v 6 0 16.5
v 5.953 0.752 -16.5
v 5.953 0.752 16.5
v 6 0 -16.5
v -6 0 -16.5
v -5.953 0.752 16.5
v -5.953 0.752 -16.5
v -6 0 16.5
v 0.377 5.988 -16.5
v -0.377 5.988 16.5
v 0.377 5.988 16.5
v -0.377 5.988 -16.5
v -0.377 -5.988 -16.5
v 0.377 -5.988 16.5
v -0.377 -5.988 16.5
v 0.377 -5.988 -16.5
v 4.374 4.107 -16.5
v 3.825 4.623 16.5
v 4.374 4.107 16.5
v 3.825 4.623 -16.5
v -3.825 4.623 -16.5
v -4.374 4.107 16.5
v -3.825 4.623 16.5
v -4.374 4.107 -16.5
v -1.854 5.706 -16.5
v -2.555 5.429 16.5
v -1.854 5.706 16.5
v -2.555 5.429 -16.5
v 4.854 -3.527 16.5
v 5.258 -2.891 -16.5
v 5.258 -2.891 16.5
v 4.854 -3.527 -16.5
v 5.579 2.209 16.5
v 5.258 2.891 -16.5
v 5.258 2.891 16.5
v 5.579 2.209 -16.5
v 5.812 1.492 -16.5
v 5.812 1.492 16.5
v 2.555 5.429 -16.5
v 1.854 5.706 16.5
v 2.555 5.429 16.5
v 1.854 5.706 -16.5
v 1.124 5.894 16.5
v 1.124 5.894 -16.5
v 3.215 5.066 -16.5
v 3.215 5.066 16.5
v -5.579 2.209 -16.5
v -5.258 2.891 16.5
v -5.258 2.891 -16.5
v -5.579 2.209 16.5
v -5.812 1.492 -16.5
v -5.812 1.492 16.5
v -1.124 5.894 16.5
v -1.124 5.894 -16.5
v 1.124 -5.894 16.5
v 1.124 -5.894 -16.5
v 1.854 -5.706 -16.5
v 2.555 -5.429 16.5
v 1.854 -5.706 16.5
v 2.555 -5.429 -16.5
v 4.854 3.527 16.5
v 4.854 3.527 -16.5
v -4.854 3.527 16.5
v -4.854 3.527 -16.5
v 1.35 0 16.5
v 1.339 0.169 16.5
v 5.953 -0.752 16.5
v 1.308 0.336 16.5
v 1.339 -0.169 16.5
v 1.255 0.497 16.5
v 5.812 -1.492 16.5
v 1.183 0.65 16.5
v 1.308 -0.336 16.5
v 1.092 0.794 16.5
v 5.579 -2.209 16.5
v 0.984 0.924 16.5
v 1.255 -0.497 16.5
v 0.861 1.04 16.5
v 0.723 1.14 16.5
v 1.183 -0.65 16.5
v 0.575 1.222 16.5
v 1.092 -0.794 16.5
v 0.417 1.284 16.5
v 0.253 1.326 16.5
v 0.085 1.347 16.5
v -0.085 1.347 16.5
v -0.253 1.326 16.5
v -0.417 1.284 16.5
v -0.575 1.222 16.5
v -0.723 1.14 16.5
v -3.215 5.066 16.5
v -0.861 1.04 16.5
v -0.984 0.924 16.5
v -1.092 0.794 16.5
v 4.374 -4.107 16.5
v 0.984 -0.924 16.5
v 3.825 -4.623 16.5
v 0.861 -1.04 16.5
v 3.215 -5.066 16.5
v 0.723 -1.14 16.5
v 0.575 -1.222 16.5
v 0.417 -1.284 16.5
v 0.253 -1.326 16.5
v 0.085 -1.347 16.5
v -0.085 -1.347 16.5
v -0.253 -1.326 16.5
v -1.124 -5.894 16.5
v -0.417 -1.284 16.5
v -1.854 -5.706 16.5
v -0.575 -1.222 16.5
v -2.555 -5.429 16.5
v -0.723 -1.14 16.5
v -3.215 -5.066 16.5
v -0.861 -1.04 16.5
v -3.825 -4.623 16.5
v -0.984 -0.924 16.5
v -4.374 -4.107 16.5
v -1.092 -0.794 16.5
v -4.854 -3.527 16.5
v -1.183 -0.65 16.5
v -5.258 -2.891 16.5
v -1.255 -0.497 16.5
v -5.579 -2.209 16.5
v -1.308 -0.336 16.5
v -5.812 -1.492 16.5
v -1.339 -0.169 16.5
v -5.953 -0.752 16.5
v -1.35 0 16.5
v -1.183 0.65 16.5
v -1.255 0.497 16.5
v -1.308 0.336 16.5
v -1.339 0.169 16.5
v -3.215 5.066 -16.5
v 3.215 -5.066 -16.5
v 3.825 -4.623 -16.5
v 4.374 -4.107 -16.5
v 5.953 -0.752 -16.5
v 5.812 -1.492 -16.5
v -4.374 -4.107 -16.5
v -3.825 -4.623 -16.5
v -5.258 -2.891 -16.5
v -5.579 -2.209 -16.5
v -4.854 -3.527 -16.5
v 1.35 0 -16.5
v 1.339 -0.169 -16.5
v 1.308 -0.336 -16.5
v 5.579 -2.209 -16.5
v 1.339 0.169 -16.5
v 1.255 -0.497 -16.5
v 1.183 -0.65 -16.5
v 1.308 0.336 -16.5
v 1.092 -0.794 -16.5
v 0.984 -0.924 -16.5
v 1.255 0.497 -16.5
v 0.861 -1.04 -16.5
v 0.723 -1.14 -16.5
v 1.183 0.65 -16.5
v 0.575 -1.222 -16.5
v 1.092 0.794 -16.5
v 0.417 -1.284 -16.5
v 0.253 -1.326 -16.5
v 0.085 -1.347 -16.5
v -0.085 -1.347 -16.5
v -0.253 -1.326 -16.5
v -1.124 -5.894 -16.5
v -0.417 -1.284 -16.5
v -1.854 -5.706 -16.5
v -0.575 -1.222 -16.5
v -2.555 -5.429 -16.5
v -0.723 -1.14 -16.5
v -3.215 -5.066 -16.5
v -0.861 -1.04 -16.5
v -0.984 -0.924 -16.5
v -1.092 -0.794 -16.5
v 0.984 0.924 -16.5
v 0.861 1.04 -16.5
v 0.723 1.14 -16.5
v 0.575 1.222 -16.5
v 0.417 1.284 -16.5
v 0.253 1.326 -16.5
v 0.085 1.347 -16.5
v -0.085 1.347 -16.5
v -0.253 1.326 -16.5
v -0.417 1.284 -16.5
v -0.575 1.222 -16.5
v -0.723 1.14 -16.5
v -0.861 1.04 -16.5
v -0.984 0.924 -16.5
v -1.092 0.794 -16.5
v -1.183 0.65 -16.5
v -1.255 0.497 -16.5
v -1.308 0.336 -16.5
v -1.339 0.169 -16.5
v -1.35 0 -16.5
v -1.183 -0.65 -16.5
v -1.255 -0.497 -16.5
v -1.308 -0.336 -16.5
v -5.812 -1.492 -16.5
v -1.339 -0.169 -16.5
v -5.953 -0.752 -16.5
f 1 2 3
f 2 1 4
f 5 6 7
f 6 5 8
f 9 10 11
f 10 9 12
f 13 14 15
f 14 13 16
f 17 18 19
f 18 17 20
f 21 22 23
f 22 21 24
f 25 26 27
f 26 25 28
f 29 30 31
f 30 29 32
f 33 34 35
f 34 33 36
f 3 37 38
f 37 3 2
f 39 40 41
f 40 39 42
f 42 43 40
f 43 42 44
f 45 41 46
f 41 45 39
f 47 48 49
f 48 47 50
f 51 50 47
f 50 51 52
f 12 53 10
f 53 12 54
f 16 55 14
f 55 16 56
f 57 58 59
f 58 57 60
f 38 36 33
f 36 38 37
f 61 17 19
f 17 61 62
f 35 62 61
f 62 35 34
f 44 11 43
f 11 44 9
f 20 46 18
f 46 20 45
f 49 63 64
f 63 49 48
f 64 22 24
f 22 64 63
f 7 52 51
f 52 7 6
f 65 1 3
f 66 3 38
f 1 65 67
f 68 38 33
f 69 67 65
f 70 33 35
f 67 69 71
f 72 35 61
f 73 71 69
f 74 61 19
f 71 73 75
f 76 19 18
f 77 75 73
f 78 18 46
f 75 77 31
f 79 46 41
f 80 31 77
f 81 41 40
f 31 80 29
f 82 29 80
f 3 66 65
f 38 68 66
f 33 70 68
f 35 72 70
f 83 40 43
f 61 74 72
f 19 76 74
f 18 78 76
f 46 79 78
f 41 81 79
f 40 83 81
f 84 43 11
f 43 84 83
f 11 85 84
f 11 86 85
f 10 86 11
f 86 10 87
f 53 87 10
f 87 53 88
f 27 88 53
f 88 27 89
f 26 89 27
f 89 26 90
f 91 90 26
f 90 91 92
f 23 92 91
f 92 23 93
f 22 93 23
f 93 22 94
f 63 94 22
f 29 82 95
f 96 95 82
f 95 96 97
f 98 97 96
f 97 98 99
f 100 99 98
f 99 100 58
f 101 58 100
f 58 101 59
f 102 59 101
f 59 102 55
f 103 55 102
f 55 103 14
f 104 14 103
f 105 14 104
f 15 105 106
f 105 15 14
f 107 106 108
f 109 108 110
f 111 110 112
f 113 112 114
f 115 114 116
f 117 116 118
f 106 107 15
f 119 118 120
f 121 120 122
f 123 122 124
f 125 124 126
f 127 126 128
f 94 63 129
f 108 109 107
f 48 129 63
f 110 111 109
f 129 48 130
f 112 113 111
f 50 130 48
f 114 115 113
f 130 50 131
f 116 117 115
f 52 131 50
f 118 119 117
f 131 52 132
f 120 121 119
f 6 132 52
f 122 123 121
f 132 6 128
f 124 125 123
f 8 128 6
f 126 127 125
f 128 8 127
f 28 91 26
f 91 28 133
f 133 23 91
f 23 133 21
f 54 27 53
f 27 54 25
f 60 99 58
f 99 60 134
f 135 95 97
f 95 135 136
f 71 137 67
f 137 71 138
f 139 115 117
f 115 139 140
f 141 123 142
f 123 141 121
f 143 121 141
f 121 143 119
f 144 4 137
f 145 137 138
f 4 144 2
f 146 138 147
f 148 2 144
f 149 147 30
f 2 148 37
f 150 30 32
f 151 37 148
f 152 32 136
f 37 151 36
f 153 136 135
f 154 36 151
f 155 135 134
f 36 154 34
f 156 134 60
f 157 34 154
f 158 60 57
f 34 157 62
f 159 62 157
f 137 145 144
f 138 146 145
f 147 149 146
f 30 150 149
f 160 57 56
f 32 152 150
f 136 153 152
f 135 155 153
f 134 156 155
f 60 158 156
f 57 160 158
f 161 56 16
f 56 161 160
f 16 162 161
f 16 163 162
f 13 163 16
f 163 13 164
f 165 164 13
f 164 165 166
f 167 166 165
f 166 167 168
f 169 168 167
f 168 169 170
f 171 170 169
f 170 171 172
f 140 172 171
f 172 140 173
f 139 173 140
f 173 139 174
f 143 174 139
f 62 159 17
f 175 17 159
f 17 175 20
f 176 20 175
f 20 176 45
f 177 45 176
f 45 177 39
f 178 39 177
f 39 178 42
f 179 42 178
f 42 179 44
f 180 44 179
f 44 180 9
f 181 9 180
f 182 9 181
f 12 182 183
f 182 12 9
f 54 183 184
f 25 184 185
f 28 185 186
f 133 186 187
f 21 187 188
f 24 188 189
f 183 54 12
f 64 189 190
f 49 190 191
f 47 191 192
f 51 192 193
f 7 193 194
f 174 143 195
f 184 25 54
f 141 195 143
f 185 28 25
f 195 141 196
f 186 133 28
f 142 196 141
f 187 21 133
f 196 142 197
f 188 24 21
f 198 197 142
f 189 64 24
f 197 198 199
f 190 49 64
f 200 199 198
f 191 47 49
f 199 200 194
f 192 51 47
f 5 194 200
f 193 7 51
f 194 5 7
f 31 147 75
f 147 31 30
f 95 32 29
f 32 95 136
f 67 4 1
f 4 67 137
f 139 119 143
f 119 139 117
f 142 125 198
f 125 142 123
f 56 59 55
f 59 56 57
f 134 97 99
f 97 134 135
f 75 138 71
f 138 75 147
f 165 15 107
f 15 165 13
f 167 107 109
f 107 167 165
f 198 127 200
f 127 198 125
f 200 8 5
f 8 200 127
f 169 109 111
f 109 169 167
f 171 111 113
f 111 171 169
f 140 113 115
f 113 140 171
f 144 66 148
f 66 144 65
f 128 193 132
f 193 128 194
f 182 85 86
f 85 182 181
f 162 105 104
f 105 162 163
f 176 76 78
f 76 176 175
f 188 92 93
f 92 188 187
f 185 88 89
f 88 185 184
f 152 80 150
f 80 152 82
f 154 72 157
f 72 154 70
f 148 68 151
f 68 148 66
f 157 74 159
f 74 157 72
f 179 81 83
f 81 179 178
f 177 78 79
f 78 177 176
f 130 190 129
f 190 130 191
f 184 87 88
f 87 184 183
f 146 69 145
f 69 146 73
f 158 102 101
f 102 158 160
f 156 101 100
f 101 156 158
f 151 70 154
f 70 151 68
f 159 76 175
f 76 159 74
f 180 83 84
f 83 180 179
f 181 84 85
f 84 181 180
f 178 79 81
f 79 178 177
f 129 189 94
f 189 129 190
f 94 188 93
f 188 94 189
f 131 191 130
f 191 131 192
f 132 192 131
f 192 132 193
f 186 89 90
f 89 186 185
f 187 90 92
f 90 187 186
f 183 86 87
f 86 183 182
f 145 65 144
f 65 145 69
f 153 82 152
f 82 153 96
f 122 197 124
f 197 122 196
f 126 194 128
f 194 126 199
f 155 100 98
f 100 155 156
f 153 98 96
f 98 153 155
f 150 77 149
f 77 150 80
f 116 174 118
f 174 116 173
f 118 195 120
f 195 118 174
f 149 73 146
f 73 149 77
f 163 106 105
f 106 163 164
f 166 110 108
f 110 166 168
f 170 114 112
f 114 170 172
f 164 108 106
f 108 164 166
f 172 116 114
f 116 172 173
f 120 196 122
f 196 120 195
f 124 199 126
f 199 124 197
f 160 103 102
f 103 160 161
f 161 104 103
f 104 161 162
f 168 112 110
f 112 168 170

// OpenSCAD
$fn = 50;


difference() {
	union() {
		translate(v = [0, 0, -16.5000000000]) {
			cylinder(h = 33, r = 6.0000000000);
		}
	}
	union() {
		translate(v = [0, 0, -100.0000000000]) {
			cylinder(h = 200, r = 1.3500000000);
		}
	}
}
